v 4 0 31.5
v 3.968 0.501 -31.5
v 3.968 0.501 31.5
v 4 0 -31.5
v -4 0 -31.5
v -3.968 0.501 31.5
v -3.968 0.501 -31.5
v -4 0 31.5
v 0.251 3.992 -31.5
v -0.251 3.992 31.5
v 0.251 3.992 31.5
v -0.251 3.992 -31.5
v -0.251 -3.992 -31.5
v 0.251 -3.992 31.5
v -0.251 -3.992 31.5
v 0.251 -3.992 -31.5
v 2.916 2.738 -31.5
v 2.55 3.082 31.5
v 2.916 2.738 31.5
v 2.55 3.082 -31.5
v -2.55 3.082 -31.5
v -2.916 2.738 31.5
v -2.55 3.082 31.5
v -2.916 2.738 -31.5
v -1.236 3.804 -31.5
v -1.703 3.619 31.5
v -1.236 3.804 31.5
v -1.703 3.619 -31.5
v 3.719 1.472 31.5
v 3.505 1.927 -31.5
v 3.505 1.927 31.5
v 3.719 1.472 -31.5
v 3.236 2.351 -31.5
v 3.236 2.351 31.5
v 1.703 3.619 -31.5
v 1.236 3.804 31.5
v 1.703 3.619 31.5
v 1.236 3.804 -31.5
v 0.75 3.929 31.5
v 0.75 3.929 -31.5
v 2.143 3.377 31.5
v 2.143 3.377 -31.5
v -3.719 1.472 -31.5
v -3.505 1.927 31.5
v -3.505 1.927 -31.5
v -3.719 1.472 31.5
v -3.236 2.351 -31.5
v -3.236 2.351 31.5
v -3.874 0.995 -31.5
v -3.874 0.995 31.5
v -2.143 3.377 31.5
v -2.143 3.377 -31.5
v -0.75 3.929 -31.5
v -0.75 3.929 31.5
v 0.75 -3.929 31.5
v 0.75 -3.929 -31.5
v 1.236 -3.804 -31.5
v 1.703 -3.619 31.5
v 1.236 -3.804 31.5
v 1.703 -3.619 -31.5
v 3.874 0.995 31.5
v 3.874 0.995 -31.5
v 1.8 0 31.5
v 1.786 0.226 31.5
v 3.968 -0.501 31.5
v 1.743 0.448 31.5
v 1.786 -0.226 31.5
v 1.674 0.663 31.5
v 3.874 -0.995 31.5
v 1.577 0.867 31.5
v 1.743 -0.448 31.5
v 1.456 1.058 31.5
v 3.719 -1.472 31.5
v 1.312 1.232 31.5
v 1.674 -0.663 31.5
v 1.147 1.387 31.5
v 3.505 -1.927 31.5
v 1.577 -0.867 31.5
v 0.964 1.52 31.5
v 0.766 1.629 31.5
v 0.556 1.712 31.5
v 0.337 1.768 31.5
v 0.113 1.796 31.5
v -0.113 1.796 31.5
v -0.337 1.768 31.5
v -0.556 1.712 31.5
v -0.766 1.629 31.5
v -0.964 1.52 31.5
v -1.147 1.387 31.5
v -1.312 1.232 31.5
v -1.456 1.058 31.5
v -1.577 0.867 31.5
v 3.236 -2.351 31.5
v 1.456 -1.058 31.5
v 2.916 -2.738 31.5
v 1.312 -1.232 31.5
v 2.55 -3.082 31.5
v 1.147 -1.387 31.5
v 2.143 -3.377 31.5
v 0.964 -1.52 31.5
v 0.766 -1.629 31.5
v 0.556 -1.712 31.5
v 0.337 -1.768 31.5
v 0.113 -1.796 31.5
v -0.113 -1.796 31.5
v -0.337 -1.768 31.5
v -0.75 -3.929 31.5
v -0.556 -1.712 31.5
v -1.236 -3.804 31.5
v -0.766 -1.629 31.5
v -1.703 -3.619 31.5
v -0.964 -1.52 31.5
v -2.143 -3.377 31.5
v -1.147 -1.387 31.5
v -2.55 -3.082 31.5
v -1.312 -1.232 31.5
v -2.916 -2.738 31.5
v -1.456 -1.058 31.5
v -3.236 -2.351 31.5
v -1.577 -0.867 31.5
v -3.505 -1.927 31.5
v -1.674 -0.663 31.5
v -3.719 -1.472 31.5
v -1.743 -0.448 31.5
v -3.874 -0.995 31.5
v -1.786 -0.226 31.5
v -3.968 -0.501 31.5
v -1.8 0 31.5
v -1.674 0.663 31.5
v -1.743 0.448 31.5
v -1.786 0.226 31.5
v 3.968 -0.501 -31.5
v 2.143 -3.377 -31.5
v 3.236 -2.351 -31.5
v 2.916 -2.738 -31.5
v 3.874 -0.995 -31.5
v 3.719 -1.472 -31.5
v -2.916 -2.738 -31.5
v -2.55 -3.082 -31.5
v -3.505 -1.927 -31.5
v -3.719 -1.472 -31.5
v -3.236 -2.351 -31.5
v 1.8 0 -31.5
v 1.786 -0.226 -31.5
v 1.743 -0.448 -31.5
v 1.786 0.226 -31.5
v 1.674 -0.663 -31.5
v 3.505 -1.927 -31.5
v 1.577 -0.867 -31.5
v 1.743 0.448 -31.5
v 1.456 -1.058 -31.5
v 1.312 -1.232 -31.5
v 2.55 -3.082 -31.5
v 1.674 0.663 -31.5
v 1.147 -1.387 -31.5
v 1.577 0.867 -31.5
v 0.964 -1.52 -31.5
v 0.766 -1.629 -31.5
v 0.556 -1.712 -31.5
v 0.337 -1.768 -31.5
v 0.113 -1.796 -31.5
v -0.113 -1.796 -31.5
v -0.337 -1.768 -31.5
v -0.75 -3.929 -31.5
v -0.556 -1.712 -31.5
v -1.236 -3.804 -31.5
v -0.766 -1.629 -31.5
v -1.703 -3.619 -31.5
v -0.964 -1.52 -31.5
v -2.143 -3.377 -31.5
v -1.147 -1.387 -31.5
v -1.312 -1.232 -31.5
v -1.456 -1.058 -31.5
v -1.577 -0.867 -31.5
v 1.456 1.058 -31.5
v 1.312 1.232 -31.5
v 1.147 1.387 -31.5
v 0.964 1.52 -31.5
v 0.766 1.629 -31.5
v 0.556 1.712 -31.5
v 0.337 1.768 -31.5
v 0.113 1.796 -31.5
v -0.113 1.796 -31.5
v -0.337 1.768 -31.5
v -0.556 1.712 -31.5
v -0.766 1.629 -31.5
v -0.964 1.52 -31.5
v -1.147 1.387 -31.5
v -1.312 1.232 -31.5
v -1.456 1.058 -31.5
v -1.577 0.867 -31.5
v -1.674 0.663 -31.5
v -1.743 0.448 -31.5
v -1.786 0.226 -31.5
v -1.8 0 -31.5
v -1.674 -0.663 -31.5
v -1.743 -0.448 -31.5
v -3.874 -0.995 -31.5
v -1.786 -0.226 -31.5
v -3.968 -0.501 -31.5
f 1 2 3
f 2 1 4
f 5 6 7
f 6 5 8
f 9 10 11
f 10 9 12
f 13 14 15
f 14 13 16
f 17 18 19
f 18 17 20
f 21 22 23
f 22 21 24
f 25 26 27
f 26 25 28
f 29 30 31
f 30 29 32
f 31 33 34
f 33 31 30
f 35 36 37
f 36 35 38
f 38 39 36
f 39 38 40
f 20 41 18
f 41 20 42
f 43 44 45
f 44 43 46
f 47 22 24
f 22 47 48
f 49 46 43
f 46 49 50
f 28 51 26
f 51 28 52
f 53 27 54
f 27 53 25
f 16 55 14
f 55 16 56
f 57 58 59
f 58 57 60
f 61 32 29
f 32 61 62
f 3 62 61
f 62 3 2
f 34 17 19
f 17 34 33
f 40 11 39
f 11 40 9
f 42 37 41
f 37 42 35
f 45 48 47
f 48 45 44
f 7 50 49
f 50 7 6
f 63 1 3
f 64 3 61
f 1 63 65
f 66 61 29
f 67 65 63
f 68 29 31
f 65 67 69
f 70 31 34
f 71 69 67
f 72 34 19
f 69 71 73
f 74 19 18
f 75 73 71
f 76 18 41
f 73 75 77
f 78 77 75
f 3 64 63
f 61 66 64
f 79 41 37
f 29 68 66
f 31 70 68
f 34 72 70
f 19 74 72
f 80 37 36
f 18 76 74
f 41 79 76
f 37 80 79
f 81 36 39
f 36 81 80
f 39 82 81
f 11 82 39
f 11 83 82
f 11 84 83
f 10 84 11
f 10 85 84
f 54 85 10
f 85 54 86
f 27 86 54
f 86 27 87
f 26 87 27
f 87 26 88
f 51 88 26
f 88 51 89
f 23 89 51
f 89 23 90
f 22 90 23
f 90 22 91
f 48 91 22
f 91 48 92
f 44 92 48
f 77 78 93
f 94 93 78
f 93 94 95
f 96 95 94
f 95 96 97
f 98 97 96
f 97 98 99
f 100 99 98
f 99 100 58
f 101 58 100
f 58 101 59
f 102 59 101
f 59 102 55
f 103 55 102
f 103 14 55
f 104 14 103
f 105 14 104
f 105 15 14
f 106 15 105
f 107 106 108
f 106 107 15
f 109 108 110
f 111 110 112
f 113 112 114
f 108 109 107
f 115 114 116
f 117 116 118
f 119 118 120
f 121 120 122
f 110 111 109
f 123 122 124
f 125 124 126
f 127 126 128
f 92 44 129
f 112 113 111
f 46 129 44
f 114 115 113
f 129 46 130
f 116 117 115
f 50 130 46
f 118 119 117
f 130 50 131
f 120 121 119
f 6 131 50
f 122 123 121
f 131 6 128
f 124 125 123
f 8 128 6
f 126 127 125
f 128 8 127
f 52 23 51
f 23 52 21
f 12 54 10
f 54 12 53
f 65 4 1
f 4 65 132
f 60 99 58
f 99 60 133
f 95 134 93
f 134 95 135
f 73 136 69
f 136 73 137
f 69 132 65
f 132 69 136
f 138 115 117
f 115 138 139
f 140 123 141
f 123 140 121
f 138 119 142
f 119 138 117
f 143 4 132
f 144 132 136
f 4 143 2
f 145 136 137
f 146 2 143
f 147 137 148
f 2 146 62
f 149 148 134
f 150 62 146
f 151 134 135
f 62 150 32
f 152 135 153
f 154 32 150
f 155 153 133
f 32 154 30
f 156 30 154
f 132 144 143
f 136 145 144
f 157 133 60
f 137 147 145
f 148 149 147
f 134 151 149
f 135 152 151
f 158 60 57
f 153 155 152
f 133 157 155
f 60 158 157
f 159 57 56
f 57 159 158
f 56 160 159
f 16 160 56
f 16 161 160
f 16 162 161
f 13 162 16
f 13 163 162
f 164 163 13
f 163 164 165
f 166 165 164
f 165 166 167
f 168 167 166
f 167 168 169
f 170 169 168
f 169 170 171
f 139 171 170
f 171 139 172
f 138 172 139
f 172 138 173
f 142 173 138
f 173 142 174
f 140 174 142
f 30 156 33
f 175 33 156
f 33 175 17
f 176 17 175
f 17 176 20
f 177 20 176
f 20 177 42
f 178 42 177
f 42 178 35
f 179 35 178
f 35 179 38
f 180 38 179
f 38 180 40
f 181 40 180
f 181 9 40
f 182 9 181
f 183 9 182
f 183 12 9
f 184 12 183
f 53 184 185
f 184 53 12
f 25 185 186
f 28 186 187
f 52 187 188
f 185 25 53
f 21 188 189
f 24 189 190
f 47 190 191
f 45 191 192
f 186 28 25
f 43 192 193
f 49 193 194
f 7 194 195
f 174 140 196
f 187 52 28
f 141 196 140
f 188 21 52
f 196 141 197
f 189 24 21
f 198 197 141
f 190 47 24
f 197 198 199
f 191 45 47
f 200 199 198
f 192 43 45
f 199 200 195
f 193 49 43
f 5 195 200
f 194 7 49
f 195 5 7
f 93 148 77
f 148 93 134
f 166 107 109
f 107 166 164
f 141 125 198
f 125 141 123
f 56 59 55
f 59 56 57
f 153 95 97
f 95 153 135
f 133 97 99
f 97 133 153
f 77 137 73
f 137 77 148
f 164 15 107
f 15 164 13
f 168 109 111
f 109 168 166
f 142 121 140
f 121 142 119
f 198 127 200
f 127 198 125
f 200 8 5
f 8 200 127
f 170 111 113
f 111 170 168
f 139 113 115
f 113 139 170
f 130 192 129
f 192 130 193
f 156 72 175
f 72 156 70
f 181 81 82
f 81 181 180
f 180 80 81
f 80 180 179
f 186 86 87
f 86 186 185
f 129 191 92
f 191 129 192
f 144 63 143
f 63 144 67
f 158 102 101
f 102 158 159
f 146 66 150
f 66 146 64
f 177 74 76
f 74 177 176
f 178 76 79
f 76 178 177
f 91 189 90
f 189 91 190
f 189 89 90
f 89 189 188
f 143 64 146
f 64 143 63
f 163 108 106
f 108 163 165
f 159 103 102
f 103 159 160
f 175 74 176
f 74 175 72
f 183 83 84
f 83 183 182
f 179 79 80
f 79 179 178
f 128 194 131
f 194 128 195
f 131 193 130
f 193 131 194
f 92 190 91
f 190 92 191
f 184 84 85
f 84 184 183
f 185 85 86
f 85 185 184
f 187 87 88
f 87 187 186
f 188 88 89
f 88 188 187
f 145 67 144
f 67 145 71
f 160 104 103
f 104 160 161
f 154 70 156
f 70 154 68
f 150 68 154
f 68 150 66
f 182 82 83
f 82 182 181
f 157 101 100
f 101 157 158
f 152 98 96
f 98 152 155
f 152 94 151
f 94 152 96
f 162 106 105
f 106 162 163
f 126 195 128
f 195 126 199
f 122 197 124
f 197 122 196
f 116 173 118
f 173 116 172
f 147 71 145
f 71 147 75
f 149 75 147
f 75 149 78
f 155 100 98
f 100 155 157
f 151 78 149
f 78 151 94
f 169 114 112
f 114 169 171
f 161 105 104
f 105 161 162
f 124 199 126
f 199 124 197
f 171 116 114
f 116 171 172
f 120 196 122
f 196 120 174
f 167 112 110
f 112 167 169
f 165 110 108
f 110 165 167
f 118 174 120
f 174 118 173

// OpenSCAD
$fn = 50;


difference() {
	union() {
		translate(v = [0, 0, -31.5000000000]) {
			cylinder(h = 63, r = 4.0000000000);
		}
	}
	union() {
		translate(v = [0, 0, -100.0000000000]) {
			cylinder(h = 200, r = 1.8000000000);
		}
	}
}
